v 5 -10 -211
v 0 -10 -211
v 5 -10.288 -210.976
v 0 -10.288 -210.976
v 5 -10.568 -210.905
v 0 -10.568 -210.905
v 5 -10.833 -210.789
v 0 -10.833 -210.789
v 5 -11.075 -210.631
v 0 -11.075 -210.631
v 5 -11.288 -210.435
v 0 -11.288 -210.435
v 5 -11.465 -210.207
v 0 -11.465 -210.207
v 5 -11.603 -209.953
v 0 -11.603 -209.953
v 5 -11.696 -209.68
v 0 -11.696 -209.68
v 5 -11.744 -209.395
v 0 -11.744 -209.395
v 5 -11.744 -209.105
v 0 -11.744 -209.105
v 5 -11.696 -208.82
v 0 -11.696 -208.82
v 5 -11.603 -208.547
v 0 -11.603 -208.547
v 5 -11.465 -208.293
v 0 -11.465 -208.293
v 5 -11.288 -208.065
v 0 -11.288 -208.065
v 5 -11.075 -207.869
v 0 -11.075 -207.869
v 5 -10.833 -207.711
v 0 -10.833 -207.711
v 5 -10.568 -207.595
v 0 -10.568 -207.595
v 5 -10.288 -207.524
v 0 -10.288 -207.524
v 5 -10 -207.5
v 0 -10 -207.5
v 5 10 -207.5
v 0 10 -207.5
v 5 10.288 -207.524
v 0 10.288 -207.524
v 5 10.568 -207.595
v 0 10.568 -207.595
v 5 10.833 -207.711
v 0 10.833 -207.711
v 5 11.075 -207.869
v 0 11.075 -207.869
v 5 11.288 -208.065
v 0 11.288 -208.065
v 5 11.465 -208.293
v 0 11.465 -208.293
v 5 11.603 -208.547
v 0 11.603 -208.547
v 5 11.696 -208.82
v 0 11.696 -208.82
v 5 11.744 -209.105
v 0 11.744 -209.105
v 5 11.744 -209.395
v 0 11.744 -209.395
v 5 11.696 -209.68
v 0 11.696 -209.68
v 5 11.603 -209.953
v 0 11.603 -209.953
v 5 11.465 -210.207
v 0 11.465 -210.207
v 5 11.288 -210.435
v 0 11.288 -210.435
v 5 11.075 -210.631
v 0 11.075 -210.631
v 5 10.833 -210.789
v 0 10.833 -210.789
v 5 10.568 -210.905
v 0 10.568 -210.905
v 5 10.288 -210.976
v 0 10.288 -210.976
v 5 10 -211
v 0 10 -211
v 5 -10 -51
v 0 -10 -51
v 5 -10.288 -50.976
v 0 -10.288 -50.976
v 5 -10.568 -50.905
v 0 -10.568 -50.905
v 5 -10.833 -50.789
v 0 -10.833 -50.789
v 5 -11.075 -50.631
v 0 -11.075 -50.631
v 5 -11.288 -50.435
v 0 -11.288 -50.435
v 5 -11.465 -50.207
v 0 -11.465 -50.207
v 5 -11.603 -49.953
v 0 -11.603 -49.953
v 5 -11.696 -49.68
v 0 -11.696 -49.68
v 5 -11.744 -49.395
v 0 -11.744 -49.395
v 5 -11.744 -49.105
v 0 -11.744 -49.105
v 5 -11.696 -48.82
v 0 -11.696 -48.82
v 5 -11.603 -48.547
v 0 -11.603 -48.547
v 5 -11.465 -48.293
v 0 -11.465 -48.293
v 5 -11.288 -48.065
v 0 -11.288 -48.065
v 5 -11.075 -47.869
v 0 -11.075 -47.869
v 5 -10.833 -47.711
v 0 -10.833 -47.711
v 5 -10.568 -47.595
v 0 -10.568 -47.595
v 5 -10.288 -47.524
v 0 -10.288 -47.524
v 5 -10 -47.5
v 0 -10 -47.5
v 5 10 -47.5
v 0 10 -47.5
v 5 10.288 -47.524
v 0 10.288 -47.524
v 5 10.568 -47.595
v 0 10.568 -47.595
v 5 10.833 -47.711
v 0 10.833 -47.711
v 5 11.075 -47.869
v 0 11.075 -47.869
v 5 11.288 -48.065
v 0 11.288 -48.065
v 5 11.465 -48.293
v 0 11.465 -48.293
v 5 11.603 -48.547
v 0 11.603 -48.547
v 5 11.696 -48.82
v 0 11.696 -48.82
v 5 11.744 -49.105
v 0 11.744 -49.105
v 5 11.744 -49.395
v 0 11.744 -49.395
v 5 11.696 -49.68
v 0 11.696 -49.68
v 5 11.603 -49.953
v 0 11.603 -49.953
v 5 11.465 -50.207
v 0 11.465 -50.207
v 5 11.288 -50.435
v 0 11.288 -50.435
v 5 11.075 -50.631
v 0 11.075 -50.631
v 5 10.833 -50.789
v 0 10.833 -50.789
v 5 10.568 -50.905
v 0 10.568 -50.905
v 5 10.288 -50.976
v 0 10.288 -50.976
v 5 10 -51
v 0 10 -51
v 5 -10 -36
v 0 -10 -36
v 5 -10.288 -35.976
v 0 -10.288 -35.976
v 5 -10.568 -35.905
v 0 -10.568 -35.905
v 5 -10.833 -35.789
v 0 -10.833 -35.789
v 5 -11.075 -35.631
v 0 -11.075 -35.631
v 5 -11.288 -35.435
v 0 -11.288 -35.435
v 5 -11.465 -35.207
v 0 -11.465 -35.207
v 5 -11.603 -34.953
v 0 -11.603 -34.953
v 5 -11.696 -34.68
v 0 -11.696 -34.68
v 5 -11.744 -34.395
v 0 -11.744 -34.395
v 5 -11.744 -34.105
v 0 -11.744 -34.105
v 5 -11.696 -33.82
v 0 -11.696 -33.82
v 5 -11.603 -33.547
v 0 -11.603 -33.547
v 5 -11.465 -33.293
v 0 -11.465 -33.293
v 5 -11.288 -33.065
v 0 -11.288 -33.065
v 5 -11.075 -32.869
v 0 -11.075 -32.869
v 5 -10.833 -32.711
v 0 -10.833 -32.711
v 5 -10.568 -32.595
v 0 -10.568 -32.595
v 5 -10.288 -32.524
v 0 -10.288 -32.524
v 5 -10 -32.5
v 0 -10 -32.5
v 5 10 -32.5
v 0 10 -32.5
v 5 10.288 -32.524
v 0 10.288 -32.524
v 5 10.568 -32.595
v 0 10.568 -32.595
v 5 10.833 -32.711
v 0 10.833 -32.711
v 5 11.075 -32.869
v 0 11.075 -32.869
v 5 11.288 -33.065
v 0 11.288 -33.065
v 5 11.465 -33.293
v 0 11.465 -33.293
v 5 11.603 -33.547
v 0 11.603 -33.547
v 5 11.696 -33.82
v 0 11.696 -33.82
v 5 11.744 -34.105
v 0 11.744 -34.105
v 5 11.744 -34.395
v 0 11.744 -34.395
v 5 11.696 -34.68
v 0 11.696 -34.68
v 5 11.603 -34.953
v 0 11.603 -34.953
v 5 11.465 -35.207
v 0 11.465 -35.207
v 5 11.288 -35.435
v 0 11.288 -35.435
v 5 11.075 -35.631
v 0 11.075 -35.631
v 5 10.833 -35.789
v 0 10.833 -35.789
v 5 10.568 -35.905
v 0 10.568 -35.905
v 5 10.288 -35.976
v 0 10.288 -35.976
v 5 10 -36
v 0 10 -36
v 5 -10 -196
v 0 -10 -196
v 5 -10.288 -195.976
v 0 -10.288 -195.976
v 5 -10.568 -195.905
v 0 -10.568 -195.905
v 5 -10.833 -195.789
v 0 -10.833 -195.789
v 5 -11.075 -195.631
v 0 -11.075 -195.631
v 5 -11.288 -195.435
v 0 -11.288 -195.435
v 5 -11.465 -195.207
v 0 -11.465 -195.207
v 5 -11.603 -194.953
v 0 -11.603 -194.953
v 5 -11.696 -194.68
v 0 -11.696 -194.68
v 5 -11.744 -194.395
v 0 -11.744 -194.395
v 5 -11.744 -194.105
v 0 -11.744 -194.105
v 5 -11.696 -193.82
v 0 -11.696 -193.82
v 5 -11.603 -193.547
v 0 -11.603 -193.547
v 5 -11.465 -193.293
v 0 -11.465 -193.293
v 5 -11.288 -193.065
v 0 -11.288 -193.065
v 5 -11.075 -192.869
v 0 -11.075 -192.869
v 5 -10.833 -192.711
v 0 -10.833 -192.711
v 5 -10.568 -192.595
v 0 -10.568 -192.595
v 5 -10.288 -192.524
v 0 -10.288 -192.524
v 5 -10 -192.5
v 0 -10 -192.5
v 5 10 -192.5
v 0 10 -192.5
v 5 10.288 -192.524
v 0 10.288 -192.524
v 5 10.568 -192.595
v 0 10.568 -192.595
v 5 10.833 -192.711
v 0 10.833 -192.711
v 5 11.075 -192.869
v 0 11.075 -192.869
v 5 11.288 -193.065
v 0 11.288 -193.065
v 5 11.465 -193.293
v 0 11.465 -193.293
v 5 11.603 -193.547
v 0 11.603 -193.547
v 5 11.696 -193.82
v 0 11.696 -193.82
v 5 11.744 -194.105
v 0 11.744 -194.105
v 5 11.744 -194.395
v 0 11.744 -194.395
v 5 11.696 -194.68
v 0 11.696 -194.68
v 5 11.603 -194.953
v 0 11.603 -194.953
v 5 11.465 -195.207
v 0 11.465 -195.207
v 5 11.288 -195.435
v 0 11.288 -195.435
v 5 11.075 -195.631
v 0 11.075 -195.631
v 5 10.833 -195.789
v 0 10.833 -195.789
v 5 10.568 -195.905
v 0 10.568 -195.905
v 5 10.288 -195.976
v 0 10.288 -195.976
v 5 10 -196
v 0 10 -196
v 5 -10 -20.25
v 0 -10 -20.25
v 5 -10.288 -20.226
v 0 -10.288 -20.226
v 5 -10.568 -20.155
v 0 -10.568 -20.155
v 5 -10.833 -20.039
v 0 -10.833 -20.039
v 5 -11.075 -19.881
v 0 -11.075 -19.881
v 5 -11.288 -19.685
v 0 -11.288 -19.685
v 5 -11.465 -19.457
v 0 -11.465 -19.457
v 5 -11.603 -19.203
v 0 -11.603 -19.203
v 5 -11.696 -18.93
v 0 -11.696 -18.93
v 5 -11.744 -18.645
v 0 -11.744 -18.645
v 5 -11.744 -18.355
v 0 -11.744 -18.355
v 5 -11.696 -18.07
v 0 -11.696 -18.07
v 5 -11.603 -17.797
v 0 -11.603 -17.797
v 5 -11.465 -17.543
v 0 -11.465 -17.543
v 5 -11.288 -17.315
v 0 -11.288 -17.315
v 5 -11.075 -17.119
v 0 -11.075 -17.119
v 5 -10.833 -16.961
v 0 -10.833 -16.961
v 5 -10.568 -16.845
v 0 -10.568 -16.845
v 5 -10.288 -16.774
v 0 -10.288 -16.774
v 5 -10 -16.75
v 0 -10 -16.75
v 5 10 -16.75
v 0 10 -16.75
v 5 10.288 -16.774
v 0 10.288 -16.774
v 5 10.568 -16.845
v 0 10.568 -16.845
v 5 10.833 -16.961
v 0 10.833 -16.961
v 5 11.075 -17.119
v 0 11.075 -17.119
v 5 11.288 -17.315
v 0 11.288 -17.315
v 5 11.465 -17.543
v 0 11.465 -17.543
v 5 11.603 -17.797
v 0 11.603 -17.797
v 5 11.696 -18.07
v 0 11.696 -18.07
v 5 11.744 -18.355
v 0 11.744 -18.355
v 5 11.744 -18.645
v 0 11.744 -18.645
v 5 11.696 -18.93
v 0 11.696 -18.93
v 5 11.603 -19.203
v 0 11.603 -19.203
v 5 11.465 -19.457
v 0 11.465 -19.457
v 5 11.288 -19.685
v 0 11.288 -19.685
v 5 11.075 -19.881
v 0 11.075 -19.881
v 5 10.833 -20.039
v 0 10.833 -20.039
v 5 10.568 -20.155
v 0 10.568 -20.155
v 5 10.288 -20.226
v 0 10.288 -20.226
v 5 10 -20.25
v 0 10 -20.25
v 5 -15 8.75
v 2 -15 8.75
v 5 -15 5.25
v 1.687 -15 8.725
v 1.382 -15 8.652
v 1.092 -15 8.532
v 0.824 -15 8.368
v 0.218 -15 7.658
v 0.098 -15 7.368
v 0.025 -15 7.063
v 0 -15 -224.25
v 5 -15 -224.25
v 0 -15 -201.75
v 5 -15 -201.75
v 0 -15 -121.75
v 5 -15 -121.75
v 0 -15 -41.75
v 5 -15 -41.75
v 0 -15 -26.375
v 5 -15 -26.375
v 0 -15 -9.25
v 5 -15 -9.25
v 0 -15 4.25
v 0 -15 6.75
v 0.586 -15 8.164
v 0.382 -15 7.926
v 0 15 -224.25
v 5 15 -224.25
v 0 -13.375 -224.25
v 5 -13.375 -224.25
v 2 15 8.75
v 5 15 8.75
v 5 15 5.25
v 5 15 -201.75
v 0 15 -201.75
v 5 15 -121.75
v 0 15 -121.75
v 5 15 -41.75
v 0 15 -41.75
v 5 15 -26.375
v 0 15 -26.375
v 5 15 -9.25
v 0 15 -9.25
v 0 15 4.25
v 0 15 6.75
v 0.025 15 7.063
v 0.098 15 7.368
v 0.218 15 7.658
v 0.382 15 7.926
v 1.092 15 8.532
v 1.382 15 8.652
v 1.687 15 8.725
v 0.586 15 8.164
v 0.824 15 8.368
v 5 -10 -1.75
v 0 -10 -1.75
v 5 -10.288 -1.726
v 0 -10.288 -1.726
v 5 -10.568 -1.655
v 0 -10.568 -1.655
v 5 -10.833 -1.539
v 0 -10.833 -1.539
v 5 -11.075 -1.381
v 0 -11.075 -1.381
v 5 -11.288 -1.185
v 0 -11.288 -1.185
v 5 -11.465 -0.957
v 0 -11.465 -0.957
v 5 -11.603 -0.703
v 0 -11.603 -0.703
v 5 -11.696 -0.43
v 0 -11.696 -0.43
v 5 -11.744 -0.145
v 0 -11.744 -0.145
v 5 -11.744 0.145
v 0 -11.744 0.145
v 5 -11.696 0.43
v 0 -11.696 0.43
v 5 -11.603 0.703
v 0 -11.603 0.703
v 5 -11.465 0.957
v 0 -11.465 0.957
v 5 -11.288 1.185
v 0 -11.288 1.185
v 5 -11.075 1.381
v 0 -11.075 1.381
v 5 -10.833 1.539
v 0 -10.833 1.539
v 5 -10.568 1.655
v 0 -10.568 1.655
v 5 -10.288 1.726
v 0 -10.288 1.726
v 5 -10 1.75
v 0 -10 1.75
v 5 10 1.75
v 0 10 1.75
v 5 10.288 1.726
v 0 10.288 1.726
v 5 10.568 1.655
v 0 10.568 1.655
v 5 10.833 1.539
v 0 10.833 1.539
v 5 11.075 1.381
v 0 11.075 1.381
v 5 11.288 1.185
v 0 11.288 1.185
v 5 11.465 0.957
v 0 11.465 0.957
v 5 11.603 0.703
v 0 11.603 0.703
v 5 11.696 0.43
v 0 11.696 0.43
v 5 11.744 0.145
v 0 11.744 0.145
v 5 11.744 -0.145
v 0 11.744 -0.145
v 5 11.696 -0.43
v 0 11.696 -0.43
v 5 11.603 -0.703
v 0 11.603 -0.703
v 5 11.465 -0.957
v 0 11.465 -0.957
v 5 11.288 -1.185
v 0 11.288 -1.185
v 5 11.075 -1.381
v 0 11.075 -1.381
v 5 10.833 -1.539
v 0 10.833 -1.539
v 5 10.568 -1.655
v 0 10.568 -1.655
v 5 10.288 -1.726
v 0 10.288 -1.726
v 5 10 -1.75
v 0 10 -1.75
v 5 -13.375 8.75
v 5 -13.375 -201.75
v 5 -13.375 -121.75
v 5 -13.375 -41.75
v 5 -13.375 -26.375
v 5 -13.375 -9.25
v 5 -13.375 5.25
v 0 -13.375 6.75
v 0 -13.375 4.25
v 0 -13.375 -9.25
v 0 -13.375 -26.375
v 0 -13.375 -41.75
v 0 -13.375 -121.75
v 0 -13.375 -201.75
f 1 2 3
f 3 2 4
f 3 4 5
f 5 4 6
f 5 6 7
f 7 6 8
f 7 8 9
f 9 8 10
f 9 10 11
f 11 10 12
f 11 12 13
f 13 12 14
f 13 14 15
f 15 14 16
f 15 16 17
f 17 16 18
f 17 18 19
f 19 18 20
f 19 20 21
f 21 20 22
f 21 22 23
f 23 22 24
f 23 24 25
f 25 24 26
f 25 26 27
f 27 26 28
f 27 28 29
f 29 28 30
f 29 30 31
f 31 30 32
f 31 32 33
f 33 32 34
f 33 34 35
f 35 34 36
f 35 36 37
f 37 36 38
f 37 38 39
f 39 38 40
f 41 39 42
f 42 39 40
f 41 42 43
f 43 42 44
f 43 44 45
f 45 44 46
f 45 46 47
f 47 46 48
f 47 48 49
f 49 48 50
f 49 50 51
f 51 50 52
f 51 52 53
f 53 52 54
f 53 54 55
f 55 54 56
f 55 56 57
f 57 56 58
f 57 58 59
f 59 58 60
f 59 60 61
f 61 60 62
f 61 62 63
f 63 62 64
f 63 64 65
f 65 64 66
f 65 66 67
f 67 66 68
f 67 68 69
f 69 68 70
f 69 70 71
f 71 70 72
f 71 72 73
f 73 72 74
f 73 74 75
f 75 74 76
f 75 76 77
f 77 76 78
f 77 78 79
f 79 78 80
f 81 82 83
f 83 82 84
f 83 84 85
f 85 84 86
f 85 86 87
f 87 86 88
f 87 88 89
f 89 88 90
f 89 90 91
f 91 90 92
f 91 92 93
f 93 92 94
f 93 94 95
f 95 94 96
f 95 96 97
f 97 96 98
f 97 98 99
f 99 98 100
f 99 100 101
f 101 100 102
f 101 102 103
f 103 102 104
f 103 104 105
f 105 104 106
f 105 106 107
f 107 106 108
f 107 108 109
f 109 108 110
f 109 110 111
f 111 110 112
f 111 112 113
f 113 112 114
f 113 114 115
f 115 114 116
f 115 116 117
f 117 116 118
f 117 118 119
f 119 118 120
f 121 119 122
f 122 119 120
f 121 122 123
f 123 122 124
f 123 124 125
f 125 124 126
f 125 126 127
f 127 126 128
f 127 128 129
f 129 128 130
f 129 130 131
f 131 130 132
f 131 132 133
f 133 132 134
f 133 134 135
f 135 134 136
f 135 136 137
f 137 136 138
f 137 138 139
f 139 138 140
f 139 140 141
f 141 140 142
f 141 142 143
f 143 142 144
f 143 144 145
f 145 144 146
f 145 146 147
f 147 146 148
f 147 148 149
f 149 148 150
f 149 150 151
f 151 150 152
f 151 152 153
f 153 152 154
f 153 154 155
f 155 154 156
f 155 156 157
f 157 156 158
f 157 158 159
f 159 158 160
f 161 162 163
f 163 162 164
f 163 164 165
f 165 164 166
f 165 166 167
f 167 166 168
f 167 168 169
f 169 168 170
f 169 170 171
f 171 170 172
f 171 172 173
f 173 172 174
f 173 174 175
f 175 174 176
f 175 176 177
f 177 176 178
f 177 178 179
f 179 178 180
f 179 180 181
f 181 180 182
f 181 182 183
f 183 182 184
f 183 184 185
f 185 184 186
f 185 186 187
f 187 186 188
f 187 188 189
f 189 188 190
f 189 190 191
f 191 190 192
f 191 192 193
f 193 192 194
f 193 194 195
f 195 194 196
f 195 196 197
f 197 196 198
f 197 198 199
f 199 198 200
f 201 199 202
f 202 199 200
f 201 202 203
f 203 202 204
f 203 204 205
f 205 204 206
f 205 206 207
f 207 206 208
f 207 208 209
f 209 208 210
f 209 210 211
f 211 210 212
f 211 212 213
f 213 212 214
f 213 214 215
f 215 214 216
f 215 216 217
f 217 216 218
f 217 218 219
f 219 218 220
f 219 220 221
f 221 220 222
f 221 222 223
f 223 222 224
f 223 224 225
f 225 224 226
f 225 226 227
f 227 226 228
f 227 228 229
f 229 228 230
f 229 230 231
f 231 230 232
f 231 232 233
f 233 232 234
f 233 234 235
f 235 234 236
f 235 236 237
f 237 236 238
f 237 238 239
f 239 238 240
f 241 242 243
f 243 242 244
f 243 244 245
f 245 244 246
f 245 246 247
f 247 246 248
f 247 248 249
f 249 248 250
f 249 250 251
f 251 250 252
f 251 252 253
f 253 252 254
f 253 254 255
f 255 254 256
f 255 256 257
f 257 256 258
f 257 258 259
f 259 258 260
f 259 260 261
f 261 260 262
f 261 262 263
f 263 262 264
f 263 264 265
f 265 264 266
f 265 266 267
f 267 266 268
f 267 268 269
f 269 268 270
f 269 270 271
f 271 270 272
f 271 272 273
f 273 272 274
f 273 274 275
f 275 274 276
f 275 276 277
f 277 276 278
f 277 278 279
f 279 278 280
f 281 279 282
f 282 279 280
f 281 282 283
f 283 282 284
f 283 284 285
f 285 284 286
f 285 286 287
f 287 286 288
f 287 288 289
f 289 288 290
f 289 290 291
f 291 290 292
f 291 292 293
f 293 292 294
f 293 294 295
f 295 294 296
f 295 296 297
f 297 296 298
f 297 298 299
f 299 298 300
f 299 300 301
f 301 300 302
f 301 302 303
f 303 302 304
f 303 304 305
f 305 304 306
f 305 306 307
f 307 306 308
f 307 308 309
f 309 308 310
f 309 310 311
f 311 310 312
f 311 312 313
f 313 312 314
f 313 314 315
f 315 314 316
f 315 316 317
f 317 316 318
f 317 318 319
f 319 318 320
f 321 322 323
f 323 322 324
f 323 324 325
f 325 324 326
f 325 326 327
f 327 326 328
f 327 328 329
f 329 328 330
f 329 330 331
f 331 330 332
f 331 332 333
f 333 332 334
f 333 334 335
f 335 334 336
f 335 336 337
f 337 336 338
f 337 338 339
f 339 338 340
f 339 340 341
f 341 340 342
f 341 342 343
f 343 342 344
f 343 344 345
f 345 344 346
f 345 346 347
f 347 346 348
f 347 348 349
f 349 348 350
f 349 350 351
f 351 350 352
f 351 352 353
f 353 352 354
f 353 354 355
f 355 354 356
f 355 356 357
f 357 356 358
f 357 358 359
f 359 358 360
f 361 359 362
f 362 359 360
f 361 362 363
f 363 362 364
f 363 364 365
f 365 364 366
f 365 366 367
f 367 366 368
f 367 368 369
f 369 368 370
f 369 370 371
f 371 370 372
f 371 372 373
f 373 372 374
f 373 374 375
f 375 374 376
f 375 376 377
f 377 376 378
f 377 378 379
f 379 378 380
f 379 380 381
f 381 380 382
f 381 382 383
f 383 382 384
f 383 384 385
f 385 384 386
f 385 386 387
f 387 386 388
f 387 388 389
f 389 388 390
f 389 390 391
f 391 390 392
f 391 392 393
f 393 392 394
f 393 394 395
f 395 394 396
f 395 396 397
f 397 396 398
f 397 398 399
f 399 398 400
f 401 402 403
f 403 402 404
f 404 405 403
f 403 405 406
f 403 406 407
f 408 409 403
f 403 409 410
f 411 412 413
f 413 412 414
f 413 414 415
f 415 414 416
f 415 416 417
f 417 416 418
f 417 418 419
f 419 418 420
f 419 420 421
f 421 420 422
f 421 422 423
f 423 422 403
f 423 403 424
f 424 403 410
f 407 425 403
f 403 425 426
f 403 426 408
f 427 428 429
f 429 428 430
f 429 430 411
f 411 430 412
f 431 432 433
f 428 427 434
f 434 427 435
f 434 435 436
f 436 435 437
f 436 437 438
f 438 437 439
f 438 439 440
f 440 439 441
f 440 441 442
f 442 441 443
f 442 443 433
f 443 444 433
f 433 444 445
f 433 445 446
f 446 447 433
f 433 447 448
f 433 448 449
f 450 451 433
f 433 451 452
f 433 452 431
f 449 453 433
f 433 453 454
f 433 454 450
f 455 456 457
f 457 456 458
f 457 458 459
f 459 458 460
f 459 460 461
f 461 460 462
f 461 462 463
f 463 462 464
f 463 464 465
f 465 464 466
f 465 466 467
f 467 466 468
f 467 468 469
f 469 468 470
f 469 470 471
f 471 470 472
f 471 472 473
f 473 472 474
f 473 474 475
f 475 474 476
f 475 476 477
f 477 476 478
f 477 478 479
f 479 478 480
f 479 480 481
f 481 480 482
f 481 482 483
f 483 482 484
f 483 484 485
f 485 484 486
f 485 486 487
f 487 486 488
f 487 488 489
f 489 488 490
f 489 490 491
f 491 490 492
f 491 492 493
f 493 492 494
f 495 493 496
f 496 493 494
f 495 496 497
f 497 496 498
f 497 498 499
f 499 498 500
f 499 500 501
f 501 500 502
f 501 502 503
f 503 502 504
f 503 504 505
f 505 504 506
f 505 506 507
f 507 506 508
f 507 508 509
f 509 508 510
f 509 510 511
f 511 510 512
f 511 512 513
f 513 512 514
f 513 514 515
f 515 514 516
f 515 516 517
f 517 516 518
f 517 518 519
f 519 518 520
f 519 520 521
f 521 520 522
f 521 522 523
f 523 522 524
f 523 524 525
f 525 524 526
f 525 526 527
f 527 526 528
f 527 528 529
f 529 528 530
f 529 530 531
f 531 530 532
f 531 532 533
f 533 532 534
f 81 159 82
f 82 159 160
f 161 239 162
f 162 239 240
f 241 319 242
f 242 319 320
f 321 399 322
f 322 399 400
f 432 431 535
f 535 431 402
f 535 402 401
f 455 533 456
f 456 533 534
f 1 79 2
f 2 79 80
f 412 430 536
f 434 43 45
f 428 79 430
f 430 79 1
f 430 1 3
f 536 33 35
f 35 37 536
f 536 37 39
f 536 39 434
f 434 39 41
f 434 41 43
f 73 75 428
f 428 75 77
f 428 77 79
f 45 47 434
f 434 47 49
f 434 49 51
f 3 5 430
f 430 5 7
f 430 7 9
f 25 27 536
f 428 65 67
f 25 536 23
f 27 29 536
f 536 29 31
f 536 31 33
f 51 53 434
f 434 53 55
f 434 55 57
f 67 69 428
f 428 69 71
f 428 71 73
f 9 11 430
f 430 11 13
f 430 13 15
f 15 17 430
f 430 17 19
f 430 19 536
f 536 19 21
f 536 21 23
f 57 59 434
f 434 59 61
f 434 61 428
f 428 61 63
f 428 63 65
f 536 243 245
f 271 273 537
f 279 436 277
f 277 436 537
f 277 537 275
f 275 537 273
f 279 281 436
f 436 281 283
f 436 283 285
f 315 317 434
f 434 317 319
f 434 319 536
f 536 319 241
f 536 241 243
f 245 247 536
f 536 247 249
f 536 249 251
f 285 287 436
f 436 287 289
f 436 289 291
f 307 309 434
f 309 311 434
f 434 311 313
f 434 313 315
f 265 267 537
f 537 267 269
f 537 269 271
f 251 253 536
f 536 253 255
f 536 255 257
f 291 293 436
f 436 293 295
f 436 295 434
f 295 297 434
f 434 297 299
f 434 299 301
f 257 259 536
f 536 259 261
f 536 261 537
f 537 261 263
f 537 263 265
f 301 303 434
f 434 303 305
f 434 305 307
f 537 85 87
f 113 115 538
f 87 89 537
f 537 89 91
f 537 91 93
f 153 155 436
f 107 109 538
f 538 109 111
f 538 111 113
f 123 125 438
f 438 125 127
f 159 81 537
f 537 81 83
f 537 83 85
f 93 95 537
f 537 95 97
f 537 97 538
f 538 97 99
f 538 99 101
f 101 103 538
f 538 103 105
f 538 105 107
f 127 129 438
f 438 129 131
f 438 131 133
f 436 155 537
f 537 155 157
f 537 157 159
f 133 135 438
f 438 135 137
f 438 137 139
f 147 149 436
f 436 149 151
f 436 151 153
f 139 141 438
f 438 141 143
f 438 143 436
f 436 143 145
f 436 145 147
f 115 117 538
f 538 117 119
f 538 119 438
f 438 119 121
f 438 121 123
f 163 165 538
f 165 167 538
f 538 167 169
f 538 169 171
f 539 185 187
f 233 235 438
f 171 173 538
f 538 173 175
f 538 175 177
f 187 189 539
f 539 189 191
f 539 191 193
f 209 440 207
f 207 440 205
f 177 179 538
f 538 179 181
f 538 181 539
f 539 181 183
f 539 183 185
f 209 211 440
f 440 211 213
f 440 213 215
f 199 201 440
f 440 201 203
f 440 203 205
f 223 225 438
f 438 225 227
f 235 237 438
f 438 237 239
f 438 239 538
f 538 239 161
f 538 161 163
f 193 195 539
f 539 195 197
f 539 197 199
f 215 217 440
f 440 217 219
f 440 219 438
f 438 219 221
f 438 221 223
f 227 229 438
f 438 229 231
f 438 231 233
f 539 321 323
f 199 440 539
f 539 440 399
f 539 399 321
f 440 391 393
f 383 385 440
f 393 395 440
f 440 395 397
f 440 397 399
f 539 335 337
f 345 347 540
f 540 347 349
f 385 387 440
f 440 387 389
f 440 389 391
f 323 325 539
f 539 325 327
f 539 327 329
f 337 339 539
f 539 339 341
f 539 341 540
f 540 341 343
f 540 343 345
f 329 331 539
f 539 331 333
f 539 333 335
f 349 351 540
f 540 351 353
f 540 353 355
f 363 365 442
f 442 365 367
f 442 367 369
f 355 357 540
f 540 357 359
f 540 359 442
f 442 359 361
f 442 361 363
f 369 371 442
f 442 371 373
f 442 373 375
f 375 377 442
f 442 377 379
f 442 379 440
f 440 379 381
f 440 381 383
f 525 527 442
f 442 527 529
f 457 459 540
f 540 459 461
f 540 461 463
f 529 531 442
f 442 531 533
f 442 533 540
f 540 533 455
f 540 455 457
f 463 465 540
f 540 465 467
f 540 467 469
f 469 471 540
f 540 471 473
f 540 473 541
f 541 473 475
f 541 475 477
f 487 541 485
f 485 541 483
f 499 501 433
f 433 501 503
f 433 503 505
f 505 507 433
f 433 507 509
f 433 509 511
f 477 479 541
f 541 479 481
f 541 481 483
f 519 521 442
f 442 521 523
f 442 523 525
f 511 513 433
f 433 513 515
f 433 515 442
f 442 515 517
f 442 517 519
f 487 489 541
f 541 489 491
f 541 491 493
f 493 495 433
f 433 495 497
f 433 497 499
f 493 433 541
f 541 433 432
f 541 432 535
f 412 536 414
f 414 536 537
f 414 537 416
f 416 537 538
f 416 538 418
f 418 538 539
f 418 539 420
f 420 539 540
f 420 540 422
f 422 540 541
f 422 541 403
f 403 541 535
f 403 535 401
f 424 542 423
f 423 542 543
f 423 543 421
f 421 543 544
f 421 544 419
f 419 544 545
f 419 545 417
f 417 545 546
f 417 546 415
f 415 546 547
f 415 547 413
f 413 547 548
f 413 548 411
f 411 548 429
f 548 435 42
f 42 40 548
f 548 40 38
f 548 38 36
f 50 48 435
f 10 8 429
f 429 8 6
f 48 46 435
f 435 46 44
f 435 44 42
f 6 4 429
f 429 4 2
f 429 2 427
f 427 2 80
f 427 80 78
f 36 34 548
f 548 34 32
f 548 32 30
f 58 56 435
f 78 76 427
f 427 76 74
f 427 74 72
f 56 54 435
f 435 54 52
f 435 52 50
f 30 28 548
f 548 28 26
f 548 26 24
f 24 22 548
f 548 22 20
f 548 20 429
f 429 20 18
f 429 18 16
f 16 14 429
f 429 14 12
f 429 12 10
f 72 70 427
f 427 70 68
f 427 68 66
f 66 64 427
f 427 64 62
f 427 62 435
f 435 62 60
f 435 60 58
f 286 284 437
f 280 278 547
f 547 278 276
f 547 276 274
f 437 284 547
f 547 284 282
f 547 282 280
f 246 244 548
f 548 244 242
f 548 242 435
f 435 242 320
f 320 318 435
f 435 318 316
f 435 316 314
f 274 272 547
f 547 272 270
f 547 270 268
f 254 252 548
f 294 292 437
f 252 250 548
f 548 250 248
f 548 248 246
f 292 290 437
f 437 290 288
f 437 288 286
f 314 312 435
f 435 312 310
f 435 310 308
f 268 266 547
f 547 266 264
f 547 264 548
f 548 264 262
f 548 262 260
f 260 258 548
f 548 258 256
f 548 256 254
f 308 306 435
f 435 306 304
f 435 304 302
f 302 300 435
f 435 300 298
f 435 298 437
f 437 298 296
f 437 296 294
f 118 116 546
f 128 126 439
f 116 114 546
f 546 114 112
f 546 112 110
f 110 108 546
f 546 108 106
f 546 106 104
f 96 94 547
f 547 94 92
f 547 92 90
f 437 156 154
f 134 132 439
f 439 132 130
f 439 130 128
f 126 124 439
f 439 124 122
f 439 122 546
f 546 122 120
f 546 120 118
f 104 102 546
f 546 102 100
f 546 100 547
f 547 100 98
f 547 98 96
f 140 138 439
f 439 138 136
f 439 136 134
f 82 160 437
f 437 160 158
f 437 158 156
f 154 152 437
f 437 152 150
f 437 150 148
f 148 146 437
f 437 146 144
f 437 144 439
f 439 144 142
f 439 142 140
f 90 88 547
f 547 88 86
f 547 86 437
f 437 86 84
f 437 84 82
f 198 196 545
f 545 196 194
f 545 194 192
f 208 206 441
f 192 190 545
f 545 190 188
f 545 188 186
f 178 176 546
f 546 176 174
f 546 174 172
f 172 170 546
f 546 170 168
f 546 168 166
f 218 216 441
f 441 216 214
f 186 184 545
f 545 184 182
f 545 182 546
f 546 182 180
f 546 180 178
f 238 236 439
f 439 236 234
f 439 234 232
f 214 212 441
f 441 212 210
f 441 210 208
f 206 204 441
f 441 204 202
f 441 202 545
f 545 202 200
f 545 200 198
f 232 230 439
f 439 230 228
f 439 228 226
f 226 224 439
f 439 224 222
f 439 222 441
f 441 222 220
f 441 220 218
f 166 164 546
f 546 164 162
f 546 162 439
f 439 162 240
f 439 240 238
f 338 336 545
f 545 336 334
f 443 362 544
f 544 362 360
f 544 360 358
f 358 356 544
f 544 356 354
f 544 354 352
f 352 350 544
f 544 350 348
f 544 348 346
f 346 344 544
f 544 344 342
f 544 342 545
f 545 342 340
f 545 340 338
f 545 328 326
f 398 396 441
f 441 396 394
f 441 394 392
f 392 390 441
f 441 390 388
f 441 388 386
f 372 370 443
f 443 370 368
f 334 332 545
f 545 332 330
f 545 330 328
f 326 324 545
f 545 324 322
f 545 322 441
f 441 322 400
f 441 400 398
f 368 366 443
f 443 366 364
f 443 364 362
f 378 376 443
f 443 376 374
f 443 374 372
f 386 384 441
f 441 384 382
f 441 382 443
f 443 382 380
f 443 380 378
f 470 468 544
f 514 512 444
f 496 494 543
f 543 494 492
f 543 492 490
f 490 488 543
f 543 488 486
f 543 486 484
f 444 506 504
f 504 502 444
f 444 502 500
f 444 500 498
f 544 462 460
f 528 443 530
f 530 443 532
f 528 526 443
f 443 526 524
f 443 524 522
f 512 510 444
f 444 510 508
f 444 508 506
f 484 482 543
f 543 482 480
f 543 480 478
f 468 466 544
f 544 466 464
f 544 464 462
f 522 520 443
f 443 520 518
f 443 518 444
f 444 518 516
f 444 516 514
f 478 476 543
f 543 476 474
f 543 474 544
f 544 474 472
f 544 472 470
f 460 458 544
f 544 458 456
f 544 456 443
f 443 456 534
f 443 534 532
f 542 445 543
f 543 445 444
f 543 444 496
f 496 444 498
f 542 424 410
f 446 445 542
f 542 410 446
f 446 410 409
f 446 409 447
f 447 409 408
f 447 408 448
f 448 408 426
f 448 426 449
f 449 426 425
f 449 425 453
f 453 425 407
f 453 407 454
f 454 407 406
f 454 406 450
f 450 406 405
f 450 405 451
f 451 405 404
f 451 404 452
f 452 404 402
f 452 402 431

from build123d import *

# Parameters (mm, degrees)
SKETCH_1_W      = 11.5
SKETCH_1_H      = 30
SKETCH_1_W_2    = 3
SKETCH_1_W_3    = 18.5
SKETCH_1_W_4    = 200
EXTRUDE_3_DEPTH = 5
FILLET_2_R      = 2


with BuildPart() as part:
    # 草图1 → 凸台-拉伸3 (new body)
    # profile 1 of 4: a face of its own
    with BuildSketch(Plane(origin=(0, 0, 0), x_dir=(0, 0, -1), z_dir=(1, 0, 0))):
        Rectangle(SKETCH_1_W, SKETCH_1_H)
        with BuildLine():
            Line((-1.75, -10), (-1.75, 10))
            ThreePointArc((-1.75, 10), (0, 11.75), (1.75, 10))
            Line((1.75, 10), (1.75, -10))
            ThreePointArc((1.75, -10), (0, -11.75), (-1.75, -10))
        make_face(mode=Mode.SUBTRACT)
    # profile 2 of 4: a face of its own
    with BuildSketch(Plane(origin=(0, 0, 0), x_dir=(0, 0, -1), z_dir=(1, 0, 0))):
        with Locations((-7.25, 0)):
            Rectangle(SKETCH_1_W_2, SKETCH_1_H)
    # profile 3 of 4: a face of its own
    with BuildSketch(Plane(origin=(0, 0, 0), x_dir=(0, 0, -1), z_dir=(1, 0, 0))):
        with Locations((15, 0)):
            Rectangle(SKETCH_1_W_3, SKETCH_1_H)
        with BuildLine():
            ThreePointArc((20.25, -10), (18.5, -11.75), (16.75, -10))
            Line((16.75, -10), (16.75, 10))
            ThreePointArc((16.75, 10), (18.5, 11.75), (20.25, 10))
            Line((20.25, 10), (20.25, -10))
        make_face(mode=Mode.SUBTRACT)
    # profile 4 of 4: a face of its own
    with BuildSketch(Plane(origin=(0, 0, 0), x_dir=(0, 0, -1), z_dir=(1, 0, 0))):
        with Locations((124.25, 0)):
            Rectangle(SKETCH_1_W_4, SKETCH_1_H)
        with BuildLine():
            ThreePointArc((36, -10), (34.25, -11.75), (32.5, -10))
            Line((32.5, -10), (32.5, 10))
            ThreePointArc((32.5, 10), (34.25, 11.75), (36, 10))
            Line((36, 10), (36, -10))
        make_face(mode=Mode.SUBTRACT)
        with BuildLine():
            ThreePointArc((51, -10), (49.25, -11.75), (47.5, -10))
            Line((47.5, -10), (47.5, 10))
            ThreePointArc((47.5, 10), (49.25, 11.75), (51, 10))
            Line((51, 10), (51, -10))
        make_face(mode=Mode.SUBTRACT)
        with BuildLine():
            ThreePointArc((196, -10), (194.25, -11.75), (192.5, -10))
            Line((192.5, -10), (192.5, 10))
            ThreePointArc((192.5, 10), (194.25, 11.75), (196, 10))
            Line((196, 10), (196, -10))
        make_face(mode=Mode.SUBTRACT)
        with BuildLine():
            ThreePointArc((207.5, 10), (209.25, 11.75), (211, 10))
            Line((211, 10), (211, -10))
            ThreePointArc((211, -10), (209.25, -11.75), (207.5, -10))
            Line((207.5, -10), (207.5, 10))
        make_face(mode=Mode.SUBTRACT)
    extrude(amount=EXTRUDE_3_DEPTH)

    # 圆角2
    fillet_2_edges = [part.edges().sort_by_distance(p)[0] for p in [
        (0, 0, 8.75),
    ]]
    fillet(fillet_2_edges, radius=FILLET_2_R)


solid = part.part
